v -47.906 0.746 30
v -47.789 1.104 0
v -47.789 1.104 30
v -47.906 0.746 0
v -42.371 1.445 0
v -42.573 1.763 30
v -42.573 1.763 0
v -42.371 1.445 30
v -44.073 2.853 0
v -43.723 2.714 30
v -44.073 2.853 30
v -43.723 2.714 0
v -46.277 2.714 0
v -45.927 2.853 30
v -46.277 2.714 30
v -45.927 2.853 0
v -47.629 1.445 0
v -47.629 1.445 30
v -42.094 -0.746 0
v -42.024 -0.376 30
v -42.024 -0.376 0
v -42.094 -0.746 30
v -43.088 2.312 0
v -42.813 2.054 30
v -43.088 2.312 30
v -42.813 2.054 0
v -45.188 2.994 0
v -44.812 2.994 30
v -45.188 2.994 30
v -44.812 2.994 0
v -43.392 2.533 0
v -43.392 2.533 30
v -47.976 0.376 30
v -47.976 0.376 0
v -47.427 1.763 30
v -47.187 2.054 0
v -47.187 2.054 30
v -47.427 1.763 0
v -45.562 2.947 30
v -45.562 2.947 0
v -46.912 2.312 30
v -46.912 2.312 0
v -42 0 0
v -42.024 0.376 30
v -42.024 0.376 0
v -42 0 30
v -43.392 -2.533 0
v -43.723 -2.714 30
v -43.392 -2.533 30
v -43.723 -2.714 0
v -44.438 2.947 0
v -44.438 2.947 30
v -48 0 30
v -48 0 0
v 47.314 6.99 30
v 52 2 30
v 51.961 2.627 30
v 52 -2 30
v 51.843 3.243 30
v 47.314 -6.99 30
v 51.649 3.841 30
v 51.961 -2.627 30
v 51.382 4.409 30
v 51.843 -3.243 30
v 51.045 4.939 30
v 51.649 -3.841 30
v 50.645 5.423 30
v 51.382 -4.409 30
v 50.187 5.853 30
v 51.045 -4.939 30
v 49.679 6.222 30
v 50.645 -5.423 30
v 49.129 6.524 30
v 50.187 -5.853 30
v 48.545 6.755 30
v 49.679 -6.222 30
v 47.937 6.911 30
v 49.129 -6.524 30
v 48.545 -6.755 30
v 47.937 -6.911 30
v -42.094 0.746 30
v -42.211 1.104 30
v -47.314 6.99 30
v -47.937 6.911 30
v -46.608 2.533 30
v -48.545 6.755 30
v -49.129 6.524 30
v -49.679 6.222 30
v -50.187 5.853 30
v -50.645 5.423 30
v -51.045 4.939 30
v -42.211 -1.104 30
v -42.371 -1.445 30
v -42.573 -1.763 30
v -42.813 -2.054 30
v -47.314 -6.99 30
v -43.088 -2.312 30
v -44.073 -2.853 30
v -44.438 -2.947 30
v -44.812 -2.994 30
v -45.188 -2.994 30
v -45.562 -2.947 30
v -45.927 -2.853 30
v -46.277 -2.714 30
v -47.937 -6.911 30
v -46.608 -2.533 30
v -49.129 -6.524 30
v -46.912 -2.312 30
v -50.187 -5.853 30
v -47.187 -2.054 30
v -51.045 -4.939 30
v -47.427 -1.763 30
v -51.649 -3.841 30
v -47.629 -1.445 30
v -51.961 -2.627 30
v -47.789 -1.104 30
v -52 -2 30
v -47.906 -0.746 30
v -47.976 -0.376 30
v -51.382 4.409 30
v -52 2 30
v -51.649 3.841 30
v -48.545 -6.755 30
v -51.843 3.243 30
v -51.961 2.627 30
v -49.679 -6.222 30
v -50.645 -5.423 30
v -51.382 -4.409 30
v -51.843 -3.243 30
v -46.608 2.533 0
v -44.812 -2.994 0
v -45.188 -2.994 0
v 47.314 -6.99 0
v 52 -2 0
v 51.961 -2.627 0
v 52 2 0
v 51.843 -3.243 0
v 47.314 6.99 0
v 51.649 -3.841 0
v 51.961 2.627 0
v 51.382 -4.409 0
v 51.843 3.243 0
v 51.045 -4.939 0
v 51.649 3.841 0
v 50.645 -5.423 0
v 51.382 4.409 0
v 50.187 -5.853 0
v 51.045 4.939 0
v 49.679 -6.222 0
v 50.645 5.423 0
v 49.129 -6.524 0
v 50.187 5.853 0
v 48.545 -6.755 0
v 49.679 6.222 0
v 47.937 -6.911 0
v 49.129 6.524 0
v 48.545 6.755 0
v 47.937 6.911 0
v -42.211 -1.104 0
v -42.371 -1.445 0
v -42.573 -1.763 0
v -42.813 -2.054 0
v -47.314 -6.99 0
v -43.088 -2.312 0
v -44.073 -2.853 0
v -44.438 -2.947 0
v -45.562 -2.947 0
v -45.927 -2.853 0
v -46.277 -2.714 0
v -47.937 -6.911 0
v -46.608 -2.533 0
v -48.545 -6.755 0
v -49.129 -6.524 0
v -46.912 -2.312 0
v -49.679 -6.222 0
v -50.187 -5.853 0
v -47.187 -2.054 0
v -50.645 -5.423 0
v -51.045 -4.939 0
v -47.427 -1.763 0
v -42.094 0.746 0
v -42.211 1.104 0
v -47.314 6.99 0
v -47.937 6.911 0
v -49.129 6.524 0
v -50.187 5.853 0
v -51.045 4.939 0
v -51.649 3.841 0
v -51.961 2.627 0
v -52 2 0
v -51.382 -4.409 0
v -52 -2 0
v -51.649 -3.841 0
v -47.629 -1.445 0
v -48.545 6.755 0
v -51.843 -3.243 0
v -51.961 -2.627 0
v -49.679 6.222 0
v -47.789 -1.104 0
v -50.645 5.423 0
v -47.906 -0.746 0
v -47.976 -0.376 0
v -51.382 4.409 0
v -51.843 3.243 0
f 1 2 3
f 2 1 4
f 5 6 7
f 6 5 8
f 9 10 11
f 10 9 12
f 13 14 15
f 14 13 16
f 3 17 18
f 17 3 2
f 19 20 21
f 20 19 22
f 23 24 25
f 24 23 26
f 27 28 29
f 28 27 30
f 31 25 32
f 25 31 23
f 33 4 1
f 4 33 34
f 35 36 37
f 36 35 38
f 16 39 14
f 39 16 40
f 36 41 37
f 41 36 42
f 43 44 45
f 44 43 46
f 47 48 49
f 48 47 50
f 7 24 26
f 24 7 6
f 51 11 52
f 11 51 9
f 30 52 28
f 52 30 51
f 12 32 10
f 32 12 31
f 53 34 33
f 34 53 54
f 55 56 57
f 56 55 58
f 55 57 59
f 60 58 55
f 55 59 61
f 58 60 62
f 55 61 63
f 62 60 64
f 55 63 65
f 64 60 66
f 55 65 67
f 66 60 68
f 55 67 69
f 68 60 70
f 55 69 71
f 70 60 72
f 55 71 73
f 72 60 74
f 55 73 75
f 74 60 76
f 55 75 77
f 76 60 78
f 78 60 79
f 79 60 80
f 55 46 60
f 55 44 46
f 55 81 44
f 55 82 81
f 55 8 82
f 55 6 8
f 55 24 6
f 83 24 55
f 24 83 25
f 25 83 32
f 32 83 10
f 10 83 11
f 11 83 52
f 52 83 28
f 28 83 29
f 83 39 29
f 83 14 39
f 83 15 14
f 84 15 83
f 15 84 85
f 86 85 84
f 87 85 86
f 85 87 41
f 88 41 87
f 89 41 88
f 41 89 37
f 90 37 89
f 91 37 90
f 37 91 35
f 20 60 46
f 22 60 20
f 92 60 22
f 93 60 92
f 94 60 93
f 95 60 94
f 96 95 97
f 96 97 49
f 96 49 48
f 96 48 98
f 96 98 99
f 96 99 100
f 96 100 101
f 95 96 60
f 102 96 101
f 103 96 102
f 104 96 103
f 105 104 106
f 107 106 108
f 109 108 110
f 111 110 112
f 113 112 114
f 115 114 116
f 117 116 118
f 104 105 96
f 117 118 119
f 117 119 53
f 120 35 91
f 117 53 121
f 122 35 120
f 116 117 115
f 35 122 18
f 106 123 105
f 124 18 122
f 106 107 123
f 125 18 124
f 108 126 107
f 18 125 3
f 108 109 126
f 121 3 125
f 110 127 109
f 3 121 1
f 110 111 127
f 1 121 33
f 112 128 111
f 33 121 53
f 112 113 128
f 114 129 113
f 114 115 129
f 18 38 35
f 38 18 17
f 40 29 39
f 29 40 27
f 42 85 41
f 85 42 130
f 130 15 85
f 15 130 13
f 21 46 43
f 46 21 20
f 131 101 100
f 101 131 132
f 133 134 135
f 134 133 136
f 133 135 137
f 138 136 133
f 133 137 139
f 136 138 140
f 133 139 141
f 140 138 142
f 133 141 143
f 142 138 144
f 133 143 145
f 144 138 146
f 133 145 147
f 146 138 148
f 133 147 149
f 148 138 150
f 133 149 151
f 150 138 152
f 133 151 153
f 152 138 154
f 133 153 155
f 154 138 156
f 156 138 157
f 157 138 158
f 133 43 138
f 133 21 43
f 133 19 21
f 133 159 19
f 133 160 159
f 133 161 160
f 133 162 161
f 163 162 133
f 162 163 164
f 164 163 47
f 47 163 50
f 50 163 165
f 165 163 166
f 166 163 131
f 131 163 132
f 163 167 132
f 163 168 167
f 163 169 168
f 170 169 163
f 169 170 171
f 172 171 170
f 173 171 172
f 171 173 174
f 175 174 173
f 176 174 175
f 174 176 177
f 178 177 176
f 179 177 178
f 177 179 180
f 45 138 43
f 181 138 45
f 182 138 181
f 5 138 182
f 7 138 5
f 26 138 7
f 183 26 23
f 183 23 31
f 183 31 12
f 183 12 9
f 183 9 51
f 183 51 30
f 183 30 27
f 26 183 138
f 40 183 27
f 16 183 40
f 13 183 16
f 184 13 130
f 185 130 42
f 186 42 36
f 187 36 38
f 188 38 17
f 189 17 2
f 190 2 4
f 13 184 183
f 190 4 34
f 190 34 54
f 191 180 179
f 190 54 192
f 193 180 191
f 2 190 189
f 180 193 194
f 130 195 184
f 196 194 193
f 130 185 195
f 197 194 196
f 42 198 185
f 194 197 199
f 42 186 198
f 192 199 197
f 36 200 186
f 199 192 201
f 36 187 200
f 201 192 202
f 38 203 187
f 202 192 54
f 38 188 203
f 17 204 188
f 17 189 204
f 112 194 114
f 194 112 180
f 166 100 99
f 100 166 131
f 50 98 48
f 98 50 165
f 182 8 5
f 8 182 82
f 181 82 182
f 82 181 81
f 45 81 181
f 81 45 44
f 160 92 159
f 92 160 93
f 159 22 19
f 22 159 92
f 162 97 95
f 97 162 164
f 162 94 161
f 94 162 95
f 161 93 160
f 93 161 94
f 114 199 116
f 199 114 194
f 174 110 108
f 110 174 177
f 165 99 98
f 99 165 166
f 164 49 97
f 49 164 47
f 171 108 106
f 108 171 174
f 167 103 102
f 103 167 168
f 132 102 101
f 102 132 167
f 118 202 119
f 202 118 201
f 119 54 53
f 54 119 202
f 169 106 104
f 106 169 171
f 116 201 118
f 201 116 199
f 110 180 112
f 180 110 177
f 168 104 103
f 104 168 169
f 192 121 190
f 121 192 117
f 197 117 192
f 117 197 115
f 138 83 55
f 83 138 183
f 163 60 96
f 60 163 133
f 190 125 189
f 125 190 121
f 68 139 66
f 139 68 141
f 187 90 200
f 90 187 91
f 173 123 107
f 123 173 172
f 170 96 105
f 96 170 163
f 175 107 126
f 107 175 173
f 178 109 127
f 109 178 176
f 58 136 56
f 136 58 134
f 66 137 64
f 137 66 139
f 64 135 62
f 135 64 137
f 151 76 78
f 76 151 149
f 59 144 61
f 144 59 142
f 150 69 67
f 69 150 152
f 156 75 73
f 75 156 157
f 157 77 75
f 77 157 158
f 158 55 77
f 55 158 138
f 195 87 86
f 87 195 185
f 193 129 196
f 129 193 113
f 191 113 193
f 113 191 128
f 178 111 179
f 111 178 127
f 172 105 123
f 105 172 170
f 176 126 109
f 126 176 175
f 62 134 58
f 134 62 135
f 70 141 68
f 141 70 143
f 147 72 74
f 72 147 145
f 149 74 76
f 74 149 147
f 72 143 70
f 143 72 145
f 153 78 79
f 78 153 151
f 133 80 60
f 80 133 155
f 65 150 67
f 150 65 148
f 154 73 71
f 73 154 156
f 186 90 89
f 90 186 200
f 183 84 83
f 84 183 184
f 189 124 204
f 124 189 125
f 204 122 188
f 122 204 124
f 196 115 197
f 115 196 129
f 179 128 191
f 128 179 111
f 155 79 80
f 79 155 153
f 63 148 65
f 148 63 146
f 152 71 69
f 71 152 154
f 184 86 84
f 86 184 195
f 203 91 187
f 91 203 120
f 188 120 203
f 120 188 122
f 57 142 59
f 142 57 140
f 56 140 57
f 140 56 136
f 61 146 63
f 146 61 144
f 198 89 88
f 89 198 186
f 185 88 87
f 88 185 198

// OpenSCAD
$fn = 50;


difference() {
	union() {
		hull() {
			translate(v = [-47.0000000000, 2.0000000000, 0]) {
				cylinder(h = 30, r = 5);
			}
			translate(v = [47.0000000000, 2.0000000000, 0]) {
				cylinder(h = 30, r = 5);
			}
			translate(v = [-47.0000000000, -2.0000000000, 0]) {
				cylinder(h = 30, r = 5);
			}
			translate(v = [47.0000000000, -2.0000000000, 0]) {
				cylinder(h = 30, r = 5);
			}
		}
	}
	union() {
		translate(v = [-45.0000000000, 0.0000000000, 0]) {
			cylinder(h = 30, r = 3.0000000000);
		}
		translate(v = [-45.0000000000, 0.0000000000, 0]) {
			cylinder(h = 30, r = 1.5000000000);
		}
		translate(v = [-45.0000000000, 0.0000000000, 0]) {
			cylinder(h = 30, r = 1.5000000000);
		}
		translate(v = [-45.0000000000, 0.0000000000, 0]) {
			cylinder(h = 30, r = 1.5000000000);
		}
	}
}
